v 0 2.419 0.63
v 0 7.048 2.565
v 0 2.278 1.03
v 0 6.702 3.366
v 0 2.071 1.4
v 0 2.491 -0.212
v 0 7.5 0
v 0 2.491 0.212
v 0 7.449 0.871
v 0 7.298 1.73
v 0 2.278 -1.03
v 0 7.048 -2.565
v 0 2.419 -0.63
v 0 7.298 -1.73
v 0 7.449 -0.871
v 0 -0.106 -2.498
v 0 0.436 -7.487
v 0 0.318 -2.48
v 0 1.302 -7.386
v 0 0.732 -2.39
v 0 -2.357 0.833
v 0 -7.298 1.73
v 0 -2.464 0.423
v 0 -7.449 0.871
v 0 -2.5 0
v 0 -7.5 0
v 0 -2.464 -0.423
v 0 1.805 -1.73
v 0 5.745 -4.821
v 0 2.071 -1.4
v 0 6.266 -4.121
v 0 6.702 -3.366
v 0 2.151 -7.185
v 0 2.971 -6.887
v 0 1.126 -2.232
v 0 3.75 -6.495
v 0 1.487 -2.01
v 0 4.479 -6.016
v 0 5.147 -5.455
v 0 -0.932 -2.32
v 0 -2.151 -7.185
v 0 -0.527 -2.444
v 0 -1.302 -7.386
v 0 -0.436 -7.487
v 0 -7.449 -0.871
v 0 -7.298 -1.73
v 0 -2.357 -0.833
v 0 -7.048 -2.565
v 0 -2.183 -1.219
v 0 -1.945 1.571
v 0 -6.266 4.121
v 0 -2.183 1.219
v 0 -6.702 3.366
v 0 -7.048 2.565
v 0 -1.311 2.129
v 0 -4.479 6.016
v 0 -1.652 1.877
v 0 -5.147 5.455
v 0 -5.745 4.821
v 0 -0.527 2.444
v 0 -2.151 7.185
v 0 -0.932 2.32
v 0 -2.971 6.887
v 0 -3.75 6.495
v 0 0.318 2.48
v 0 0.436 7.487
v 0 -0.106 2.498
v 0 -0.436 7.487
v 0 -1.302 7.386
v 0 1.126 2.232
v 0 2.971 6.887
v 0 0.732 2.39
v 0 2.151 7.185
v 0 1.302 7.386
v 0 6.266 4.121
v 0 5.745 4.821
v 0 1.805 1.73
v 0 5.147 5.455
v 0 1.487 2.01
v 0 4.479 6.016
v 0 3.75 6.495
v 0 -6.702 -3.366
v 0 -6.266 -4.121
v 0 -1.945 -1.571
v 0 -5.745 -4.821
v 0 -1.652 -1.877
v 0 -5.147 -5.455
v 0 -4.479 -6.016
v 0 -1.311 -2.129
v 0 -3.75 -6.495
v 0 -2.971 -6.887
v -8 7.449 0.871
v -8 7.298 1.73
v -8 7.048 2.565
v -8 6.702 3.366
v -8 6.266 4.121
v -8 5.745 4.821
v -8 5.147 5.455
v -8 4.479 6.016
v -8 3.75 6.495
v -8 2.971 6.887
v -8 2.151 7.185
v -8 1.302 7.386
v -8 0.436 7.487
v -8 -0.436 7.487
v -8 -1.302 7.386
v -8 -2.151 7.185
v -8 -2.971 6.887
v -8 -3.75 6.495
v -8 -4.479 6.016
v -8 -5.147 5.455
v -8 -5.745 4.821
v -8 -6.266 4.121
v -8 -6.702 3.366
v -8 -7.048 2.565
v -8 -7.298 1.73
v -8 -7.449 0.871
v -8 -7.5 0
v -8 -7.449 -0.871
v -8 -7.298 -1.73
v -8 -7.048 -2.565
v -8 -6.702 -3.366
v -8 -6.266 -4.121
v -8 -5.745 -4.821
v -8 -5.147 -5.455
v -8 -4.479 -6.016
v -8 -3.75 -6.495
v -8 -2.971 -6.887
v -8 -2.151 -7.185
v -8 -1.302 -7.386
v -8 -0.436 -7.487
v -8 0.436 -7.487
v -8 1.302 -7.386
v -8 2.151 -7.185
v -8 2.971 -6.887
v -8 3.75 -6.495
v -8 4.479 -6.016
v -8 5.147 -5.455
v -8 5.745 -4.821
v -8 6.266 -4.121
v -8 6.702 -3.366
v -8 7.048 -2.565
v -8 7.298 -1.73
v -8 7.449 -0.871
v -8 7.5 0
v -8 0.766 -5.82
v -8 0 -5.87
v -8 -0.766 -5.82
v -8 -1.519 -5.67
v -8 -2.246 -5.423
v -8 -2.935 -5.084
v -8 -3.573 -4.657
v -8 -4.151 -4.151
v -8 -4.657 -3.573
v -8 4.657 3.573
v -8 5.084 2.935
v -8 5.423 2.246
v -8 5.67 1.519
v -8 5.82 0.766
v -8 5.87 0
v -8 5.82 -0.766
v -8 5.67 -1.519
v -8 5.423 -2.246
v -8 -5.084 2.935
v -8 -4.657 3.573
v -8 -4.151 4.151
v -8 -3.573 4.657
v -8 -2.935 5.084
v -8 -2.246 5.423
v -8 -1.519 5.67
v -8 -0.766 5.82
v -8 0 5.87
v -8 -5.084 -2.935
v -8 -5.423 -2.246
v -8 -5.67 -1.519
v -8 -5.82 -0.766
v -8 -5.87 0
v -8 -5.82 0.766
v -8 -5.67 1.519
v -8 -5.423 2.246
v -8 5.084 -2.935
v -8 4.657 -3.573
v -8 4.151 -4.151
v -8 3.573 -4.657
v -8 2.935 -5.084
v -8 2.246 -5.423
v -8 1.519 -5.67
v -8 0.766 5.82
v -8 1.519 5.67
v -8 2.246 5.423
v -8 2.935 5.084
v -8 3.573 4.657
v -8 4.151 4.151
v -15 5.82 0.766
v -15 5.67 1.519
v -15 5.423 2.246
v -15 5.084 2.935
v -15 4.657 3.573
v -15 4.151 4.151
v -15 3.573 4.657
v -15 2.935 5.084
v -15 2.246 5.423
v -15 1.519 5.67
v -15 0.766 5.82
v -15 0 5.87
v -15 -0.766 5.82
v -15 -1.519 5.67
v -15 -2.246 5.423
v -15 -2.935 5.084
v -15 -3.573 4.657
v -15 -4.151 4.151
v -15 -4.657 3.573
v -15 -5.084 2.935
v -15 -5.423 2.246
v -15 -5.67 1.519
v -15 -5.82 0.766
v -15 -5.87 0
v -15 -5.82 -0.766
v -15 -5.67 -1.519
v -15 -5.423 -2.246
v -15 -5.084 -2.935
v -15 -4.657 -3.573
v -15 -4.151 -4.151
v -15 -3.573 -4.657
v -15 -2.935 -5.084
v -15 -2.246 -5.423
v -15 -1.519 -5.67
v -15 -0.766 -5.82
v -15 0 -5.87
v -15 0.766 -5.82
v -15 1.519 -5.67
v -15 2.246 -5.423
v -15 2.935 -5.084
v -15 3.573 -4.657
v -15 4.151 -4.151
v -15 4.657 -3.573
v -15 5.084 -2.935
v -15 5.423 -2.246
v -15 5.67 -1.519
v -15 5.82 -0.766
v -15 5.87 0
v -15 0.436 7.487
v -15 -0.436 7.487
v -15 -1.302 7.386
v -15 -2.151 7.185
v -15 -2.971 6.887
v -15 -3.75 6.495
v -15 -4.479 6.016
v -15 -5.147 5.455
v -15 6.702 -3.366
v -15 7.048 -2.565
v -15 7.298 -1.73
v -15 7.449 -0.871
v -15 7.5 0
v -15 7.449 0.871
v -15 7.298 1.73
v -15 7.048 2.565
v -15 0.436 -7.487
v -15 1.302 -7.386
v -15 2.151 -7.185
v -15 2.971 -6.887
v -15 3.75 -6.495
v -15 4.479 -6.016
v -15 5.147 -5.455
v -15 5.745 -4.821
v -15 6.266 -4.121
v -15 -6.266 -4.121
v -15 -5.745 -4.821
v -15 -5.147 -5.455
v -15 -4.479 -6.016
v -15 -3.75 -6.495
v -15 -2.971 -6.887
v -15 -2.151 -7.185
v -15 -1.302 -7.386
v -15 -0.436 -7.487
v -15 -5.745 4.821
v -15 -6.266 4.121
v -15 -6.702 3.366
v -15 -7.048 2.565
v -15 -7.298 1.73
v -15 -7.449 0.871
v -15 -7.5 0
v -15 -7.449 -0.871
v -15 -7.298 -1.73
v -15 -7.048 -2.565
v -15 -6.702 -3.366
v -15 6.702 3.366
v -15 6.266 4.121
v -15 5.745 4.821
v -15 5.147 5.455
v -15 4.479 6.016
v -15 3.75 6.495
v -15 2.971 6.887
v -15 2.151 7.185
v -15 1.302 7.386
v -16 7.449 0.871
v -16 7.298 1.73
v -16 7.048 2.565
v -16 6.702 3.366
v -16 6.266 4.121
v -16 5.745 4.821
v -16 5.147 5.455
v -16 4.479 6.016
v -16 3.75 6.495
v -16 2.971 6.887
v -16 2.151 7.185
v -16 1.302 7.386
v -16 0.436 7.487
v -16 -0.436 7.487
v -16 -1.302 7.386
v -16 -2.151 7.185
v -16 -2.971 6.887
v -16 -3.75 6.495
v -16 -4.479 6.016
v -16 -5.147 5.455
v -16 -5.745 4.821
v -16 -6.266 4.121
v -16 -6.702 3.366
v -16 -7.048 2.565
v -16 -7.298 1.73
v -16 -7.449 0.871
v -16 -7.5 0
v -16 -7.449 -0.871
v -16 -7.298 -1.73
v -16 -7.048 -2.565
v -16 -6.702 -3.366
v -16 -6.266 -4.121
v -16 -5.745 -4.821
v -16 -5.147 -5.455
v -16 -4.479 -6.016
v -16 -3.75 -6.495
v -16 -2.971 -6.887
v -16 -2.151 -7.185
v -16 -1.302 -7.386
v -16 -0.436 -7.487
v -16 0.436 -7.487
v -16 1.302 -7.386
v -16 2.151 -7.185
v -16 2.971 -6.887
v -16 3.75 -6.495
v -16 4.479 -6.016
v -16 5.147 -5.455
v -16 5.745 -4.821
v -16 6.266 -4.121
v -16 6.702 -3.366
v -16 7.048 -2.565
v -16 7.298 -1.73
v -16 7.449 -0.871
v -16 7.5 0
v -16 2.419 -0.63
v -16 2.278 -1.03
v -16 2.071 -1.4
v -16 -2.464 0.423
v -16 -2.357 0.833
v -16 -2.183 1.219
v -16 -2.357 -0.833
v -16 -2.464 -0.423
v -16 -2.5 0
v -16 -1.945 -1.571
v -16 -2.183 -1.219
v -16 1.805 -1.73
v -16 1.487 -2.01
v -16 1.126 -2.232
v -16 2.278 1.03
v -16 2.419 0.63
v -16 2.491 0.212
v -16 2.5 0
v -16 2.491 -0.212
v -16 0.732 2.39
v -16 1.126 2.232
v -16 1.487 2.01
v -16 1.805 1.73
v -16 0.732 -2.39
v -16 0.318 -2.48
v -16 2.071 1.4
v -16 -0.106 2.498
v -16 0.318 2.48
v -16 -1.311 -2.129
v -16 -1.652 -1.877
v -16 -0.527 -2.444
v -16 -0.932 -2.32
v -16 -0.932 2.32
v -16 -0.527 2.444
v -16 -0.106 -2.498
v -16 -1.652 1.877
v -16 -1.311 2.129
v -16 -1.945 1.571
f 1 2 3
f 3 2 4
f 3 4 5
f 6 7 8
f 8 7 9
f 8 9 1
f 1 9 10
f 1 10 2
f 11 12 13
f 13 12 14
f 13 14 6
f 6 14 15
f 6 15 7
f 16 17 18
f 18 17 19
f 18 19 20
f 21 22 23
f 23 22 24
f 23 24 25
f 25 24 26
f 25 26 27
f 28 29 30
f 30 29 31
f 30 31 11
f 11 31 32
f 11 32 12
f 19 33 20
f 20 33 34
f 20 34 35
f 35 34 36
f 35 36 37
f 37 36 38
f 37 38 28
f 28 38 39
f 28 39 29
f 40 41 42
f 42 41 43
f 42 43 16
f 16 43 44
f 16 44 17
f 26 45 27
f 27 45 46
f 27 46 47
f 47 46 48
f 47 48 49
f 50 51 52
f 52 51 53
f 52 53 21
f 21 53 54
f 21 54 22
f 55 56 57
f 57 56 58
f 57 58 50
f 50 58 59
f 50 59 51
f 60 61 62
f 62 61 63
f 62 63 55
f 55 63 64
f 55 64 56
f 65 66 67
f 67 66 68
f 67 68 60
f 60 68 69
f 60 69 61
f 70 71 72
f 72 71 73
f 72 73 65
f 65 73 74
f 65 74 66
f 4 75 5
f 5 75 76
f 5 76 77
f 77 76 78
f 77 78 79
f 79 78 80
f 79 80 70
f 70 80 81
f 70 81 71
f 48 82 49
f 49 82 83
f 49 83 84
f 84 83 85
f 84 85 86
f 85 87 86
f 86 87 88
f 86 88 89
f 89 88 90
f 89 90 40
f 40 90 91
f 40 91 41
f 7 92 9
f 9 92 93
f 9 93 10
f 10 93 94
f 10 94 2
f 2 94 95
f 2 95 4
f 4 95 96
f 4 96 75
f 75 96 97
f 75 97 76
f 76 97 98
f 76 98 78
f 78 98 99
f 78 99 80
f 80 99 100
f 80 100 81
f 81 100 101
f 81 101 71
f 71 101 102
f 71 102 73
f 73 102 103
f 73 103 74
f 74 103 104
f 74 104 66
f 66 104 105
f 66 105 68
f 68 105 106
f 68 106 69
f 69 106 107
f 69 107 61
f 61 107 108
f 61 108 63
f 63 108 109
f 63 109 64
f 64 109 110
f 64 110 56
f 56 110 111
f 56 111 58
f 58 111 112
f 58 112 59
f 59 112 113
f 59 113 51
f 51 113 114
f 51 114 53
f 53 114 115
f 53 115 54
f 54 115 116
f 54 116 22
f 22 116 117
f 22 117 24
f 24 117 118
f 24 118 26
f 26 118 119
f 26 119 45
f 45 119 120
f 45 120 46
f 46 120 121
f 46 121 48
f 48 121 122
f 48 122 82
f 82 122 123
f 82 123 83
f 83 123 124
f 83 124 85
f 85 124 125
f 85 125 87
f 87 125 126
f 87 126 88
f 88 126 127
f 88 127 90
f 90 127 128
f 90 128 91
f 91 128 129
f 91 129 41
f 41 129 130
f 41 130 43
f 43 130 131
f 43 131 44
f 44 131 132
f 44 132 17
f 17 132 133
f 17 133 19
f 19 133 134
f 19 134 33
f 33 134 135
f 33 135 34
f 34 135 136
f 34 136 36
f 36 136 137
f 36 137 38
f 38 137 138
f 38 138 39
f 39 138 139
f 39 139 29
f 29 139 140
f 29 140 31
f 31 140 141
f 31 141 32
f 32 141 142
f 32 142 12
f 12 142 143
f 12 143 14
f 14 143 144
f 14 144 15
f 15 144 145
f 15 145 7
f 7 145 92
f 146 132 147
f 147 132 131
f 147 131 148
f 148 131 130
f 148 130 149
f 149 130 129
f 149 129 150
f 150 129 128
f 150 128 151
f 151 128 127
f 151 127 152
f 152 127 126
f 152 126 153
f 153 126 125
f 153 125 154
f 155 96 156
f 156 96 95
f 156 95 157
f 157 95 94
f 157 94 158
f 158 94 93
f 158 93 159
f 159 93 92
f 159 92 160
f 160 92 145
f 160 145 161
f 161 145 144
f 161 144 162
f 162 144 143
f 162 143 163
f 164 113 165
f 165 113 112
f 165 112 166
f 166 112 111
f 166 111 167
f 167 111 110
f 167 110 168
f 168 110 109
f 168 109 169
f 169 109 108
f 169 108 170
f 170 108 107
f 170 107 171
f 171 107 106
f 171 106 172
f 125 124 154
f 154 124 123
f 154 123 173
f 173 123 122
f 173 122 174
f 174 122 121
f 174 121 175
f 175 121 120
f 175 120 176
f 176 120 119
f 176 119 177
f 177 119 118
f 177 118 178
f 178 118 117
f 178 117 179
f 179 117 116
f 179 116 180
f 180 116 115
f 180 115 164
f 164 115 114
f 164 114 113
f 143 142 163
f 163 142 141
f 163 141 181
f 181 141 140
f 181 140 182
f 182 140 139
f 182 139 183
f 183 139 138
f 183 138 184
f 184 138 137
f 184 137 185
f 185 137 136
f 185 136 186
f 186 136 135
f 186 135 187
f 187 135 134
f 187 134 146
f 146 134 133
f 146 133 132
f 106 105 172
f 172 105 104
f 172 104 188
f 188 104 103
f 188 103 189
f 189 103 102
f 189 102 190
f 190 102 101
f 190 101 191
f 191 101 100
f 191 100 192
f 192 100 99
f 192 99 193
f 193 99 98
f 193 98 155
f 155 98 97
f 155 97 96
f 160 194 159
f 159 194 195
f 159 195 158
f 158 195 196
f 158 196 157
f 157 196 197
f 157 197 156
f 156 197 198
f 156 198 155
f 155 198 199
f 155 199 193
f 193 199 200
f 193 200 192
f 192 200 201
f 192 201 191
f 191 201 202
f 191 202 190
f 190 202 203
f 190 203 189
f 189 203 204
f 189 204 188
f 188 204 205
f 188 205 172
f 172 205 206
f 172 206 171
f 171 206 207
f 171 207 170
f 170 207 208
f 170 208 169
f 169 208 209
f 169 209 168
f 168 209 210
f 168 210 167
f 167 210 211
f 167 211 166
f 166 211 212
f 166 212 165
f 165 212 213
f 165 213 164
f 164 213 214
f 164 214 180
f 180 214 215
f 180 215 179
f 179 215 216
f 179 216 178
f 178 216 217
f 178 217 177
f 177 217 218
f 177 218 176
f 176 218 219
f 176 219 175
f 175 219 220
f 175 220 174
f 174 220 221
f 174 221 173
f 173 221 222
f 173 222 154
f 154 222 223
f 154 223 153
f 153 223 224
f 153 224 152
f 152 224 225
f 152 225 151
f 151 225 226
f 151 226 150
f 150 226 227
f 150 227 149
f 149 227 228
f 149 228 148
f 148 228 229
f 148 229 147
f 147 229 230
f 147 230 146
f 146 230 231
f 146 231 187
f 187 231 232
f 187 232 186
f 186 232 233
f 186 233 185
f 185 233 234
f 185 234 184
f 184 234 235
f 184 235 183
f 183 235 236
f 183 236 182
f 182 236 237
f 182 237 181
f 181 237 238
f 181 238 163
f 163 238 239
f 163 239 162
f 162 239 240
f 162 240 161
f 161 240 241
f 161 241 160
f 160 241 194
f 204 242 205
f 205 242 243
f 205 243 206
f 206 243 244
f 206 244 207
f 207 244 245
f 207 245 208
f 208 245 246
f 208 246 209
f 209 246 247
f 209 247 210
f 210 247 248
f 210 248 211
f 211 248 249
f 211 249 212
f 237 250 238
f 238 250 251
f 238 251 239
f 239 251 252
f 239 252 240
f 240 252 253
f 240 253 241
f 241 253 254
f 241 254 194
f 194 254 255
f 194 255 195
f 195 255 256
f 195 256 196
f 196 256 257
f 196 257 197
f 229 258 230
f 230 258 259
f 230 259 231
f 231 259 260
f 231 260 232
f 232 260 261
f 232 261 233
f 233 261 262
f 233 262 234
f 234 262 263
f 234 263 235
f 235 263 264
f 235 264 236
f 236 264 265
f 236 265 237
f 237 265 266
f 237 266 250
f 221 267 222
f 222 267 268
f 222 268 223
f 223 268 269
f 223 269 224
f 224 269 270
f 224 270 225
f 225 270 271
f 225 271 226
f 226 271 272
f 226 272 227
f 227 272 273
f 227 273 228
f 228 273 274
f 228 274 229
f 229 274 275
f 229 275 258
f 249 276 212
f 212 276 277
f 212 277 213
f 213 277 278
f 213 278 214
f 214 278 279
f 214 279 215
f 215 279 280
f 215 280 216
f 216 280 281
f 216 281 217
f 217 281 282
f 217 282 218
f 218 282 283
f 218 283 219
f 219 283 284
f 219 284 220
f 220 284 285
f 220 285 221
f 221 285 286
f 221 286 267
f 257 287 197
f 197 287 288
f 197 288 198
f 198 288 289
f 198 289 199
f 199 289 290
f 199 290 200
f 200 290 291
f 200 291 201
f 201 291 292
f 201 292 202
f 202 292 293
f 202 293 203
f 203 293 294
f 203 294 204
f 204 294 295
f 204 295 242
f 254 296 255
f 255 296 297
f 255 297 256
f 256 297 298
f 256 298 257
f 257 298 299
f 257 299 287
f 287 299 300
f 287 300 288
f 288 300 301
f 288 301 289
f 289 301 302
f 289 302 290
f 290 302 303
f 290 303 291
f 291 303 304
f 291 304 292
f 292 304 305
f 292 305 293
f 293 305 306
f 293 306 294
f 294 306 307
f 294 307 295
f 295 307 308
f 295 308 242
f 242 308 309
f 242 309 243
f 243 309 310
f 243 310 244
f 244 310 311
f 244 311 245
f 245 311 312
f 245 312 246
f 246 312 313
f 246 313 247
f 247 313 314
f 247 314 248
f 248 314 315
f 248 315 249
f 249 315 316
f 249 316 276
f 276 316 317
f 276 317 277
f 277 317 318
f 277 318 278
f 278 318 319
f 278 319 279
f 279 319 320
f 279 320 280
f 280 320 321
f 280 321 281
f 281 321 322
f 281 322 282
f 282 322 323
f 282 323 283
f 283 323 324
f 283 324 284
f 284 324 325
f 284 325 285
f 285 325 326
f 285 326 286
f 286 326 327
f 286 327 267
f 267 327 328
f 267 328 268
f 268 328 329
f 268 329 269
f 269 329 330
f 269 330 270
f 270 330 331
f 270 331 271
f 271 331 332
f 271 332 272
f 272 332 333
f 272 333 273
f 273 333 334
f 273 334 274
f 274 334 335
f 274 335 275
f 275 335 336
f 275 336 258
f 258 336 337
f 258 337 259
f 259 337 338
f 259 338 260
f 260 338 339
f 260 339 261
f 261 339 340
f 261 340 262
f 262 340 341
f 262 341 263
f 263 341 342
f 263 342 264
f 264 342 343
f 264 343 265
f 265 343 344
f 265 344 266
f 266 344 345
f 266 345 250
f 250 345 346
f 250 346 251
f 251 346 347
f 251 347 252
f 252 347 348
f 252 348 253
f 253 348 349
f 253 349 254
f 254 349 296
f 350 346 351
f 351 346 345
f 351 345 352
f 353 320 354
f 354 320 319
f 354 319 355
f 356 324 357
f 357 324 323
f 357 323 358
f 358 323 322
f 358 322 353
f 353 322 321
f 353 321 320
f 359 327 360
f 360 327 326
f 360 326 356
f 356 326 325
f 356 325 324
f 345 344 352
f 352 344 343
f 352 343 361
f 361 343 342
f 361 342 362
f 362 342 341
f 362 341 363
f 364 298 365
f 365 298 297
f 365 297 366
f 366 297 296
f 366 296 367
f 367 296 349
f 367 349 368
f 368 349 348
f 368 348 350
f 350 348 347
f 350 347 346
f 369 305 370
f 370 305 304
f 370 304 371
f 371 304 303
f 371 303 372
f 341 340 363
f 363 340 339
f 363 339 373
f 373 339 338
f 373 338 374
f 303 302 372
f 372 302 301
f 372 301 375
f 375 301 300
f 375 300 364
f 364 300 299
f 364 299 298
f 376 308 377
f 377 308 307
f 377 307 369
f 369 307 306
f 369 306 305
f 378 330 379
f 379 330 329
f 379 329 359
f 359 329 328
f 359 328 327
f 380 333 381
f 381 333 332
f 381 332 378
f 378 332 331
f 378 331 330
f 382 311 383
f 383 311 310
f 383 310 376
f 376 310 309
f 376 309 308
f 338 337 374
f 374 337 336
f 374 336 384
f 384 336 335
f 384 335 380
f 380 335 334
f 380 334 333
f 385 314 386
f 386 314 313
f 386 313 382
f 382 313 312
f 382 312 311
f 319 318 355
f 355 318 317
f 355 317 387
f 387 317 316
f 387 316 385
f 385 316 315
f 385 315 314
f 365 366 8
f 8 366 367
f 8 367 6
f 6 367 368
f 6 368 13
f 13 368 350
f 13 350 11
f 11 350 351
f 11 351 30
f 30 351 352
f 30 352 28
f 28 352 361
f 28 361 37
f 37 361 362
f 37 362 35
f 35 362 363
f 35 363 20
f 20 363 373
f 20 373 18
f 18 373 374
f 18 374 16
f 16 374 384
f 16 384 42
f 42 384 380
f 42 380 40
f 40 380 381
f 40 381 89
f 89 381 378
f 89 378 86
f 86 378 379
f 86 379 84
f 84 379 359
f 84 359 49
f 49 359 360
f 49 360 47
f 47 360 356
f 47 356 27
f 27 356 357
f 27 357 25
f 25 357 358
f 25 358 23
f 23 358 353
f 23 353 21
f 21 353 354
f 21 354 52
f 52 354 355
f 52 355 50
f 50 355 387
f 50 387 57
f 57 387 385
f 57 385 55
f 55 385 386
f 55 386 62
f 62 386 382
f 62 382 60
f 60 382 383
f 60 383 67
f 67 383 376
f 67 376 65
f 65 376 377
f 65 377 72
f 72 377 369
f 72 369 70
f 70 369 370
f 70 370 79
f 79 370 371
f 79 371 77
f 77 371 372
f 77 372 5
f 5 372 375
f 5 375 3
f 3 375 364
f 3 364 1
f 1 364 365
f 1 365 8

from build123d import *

# Parameters (mm, degrees)
SKETCH1_W               = 7
SKETCH1_H               = 7.5
SKETCH2_R               = 2.5
CUT_EXTRUDE1_DEPTH      = 1
CUT_EXTRUDE1_DEPTH_BACK = 17


with BuildPart() as part:
    # Sketch1 → Revolve1 (revolve)
    with BuildSketch(Plane.XY):
        Polygon((-7, 7.5), (-7, 0), (-16, 0), (-16, 7.5), (-15, 7.5), (-15, 5.87), (-8, 5.87), (-8, 7.5), align=None)
        with Locations((-3.5, 3.75)):
            Rectangle(SKETCH1_W, SKETCH1_H)
    revolve(axis=Axis((-7, 0, 0), (-1, 0, 0)))

    # Sketch2 → Cut-Extrude1 (cut, two sides)
    with BuildSketch(Plane.ZY.offset(16)) as cut_extrude1_sk:
        Circle(SKETCH2_R)
    extrude(amount=CUT_EXTRUDE1_DEPTH, mode=Mode.SUBTRACT)
    extrude(cut_extrude1_sk.sketch, amount=-CUT_EXTRUDE1_DEPTH_BACK, mode=Mode.SUBTRACT)


solid = part.part
